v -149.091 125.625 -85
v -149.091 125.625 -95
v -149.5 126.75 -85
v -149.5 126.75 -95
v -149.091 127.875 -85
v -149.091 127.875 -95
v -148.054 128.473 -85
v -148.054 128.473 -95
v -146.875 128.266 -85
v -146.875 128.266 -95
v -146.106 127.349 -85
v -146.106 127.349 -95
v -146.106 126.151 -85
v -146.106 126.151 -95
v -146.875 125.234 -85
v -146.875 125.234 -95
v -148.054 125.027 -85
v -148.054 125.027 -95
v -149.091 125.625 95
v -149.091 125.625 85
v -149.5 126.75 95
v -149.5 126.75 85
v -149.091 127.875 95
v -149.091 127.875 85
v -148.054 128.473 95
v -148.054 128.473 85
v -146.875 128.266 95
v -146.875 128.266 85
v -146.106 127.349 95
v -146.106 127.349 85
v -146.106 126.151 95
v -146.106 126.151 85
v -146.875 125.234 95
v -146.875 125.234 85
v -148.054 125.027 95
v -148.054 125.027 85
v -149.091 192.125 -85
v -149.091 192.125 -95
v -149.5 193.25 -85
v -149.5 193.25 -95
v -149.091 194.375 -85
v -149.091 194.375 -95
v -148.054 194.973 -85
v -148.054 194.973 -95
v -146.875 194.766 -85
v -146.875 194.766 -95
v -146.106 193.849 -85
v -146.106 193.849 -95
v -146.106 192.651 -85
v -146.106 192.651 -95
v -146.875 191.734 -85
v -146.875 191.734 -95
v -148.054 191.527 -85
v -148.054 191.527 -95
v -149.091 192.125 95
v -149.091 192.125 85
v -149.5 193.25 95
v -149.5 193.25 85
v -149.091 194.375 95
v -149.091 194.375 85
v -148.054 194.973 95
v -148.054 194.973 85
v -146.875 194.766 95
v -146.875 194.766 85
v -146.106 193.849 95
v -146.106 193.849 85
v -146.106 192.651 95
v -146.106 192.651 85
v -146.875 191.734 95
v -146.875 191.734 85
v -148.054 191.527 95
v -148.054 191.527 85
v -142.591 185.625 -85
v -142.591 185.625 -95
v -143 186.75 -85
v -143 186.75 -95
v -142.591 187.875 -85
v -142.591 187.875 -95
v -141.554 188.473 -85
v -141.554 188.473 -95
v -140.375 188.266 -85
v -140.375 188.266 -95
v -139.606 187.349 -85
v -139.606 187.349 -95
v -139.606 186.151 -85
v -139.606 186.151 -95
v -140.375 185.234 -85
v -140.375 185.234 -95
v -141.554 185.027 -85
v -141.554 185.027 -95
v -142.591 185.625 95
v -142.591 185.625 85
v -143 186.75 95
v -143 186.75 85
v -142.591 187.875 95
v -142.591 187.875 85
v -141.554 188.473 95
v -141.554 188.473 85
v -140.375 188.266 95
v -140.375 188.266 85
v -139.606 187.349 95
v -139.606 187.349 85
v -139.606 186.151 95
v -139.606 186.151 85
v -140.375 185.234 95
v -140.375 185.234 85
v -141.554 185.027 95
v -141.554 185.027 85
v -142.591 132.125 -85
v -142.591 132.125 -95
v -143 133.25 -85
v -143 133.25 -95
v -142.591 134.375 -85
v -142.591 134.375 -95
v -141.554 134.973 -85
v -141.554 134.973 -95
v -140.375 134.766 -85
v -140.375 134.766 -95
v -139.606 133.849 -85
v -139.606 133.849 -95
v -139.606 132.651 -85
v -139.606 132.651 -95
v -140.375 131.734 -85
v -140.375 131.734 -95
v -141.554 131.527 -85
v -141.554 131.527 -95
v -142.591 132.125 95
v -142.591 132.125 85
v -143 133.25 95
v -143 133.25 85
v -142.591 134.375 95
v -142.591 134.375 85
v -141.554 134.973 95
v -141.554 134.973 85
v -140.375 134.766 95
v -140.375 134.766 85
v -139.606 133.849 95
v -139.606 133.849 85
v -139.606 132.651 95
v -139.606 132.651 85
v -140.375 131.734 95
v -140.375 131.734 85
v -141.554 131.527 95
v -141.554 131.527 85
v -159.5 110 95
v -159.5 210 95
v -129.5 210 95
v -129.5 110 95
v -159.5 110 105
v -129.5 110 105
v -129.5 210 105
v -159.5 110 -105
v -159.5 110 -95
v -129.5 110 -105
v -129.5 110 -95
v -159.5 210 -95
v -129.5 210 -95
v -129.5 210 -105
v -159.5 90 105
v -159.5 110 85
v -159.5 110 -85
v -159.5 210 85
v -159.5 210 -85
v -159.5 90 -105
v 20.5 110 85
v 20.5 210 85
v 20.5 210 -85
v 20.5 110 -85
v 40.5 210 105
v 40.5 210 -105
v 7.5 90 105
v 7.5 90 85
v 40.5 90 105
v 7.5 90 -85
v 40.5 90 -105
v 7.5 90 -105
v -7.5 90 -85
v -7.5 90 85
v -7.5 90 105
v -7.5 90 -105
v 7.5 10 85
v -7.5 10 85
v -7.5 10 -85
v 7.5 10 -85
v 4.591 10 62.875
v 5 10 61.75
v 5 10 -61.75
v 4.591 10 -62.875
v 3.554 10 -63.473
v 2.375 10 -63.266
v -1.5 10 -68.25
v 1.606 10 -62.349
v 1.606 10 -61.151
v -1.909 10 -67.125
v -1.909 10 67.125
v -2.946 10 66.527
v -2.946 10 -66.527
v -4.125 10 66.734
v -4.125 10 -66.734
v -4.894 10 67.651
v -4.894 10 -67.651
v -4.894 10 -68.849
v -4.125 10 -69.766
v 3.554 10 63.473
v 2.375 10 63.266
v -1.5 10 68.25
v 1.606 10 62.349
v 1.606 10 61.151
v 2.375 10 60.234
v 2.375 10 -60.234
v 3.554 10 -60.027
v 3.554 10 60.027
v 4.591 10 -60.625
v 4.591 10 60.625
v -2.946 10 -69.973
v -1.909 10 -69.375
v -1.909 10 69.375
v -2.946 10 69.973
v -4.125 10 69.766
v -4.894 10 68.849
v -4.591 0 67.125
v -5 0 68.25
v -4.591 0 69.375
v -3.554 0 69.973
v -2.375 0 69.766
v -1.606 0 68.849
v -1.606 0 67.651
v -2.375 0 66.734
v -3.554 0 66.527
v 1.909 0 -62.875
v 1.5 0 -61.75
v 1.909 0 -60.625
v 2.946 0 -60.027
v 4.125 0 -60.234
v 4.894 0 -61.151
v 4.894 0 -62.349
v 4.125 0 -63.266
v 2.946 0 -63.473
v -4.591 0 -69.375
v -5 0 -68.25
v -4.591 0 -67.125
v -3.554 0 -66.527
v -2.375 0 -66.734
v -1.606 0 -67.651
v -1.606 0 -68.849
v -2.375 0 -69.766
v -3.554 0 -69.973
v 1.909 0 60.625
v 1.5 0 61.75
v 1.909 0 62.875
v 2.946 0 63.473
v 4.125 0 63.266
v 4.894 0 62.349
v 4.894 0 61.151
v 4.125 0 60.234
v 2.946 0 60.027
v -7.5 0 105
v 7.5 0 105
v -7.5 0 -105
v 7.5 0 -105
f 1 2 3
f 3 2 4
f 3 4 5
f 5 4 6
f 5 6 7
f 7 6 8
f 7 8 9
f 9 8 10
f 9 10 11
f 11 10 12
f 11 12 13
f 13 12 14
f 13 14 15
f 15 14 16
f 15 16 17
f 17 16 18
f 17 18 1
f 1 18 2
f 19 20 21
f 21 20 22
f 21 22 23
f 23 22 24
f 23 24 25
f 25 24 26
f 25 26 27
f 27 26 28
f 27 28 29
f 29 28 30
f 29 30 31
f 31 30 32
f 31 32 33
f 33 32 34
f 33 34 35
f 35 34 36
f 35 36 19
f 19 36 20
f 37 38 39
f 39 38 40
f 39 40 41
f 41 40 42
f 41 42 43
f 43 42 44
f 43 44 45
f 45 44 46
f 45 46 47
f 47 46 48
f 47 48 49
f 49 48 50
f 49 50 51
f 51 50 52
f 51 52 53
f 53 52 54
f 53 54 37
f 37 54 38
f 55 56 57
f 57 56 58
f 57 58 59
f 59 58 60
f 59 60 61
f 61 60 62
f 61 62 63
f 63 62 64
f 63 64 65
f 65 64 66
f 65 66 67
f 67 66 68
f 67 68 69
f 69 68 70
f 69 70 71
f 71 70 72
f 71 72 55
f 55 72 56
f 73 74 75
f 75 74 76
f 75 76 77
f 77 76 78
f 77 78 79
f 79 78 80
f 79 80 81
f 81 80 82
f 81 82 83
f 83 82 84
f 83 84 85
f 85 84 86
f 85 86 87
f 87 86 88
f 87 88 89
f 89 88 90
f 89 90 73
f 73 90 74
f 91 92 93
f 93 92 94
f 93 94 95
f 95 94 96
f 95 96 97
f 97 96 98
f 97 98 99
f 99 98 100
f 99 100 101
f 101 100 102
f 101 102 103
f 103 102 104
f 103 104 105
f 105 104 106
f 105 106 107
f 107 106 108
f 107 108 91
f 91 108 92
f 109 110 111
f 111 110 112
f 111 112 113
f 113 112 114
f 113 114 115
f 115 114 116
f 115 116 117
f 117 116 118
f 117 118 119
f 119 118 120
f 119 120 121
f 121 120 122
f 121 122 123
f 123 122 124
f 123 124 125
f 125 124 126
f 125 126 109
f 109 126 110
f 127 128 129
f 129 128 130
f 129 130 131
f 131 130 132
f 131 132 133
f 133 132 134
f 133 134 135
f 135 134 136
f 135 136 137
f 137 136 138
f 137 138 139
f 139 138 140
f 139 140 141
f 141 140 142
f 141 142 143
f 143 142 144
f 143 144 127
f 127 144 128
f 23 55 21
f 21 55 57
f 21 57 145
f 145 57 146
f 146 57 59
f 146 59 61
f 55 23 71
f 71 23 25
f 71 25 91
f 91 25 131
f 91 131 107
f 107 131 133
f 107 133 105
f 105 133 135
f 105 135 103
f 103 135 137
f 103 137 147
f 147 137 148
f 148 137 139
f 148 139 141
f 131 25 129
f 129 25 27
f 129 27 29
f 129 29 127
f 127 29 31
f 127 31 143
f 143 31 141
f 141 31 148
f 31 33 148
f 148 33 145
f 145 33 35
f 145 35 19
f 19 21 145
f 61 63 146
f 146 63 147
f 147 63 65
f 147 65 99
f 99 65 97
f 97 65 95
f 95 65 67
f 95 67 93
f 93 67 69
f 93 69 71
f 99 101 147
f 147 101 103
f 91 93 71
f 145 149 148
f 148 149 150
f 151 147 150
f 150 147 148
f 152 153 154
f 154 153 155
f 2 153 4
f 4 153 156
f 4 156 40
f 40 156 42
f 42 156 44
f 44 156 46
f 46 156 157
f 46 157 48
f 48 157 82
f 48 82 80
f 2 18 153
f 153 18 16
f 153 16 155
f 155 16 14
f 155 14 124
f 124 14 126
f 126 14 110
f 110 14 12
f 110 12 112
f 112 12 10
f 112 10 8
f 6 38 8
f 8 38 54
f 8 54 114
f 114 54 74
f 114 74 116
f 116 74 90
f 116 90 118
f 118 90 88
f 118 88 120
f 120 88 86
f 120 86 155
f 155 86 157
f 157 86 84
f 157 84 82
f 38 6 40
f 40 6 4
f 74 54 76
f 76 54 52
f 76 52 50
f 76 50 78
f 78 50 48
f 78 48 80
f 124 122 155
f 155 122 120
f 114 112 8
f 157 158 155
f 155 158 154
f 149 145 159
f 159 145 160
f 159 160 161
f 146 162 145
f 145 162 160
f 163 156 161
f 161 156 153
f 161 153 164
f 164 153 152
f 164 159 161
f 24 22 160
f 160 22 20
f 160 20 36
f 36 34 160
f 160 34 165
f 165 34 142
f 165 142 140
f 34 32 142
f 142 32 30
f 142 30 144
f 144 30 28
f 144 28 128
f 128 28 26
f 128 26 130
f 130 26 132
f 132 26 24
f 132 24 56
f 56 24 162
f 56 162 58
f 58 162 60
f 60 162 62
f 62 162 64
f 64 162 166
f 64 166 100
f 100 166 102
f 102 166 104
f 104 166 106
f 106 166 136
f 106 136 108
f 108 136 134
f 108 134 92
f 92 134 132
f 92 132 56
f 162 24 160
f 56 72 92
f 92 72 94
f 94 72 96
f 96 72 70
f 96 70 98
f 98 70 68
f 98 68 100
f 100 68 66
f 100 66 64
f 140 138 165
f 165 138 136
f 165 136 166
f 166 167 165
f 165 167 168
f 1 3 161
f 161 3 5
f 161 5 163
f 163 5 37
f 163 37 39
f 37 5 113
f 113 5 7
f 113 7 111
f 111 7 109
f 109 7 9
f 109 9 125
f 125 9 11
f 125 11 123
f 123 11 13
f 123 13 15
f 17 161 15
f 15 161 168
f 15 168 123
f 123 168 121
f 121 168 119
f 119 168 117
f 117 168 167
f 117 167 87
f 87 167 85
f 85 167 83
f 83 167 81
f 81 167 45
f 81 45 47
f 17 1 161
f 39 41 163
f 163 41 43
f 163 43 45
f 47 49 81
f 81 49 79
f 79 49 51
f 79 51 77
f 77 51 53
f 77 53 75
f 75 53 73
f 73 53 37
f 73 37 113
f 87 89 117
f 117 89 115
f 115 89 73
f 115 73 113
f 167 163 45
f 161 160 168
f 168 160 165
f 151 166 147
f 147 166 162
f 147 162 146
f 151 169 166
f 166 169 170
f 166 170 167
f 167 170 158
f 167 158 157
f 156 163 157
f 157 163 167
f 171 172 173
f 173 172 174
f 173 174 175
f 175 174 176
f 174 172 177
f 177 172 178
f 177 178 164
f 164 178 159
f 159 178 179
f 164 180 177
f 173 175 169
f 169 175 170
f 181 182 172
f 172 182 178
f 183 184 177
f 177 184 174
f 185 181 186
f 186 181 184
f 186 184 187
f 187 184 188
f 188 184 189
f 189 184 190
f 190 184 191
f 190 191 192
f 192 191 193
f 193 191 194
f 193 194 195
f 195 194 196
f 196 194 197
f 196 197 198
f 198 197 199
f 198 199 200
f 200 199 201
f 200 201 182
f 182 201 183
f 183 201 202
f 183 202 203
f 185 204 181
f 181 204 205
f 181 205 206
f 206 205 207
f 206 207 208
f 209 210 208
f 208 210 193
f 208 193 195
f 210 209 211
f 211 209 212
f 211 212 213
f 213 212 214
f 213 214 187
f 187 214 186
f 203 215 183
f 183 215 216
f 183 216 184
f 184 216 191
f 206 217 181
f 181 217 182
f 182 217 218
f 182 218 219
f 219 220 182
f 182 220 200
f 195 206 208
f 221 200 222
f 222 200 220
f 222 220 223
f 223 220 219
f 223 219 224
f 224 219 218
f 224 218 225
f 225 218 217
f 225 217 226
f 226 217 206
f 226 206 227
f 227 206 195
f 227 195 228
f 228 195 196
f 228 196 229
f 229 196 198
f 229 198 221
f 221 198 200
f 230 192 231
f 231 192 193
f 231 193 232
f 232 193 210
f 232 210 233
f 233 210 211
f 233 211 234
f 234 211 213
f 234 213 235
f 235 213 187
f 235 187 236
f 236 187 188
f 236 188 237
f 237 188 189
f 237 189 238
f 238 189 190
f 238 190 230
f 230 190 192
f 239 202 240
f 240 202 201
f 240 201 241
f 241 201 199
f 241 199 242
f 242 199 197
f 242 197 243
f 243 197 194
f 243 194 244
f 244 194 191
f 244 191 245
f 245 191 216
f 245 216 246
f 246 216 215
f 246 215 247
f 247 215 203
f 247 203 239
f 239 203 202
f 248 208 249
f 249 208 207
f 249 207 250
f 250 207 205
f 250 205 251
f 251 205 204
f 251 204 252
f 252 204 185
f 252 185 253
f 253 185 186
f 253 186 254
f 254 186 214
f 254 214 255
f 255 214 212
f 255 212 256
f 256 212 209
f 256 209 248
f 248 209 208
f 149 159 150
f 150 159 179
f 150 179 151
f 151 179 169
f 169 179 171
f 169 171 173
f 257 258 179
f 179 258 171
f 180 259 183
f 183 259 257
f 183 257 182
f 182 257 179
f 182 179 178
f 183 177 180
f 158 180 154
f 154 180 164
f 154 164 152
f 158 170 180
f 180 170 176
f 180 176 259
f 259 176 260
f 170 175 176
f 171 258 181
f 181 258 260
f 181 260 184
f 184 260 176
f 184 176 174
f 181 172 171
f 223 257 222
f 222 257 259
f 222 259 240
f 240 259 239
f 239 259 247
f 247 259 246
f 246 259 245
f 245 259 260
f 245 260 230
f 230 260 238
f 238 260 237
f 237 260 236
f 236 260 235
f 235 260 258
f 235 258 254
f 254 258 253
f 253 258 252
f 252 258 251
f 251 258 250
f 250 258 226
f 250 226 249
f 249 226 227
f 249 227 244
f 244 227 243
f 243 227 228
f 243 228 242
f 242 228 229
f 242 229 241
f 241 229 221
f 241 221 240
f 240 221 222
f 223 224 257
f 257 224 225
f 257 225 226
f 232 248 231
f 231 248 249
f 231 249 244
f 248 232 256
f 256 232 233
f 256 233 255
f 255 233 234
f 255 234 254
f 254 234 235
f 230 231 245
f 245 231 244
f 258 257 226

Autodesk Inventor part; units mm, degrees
ref_plane "YZ Plane" through (0, 0, 0) normal (1, 0, 0) x (0, 1, 0)
ref_plane "XZ Plane" through (0, 0, 0) normal (0, 1, 0) x (-1, 0, 0)
ref_plane "XY Plane" through (0, 0, 0) normal (0, 0, 1) x (1, 0, 0)
sketch "Boceto2" plane through (0, 0, 0) normal (0, 1, 0) x (-1, 0, 0)
  line L0 (7.5, 105) -> (-7.5, 105)
  line L1 (-7.5, 105) -> (-7.5, -105)
  line L2 (-7.5, -105) -> (7.5, -105)
  line L3 (7.5, -105) -> (7.5, 105)
  line L4 (7.5, 105) -> (-7.5, -105) construction
  line L5 (-7.5, 105) -> (7.5, -105) construction
  point P0 (0, 0)
  dimension "d7" = 15
  dimension "d8" = 210
extrude "Extrusión1" add sketch "Boceto2" along normal blind 10
sketch "Boceto3" plane through (0, 10, 0) normal (0, 1, 0) x (1, 0, 0)
  line L0 (5, 60) -> (-5, 60)
  line L1 (-5, 60) -> (-5, 70)
  line L2 (-5, 70) -> (5, 70)
  line L3 (5, 70) -> (5, 60)
  line L4 (5, 60) -> (-5, 70) construction
  line L5 (7.5, 105) -> (-7.5, 105) projected
  line L6 (0, 64.5148) -> (0, 61.9205)
  circle A0 centre (3.25, 61.75) radius 1.75
  circle A1 centre (-3.25, 68.25) radius 1.75
  line L7 (-7.5, 105) -> (-7.5, -105) projected
  line L8 (-7.5, 0) -> (0, 0)
  line L9 (5, -70) -> (5, -60)
  line L10 (-5, -70) -> (5, -70)
  line L11 (5, -60) -> (-5, -60)
  line L12 (-5, -60) -> (-5, -70)
  line L13 (5, -60) -> (-5, -70) construction
  line L14 (0, -64.5148) -> (0, -61.9205)
  circle A2 centre (-3.25, -68.25) radius 1.75
  circle A3 centre (3.25, -61.75) radius 1.75
  point P0 (3.25, 68.25)
  point P1 (-5, 65)
  point P2 (-3.25, 61.75)
  point P3 (0, 105)
  point P4 (3.25, -68.25)
  point P5 (-3.25, -61.75)
  point P6 (-5, -65)
  dimension "d12" = 1.75
  dimension "d13" = 1.75
  dimension "d14" = 1.75
  dimension "d15" = 1.75
  dimension "d16" = 10
  dimension "d17" = 10
  dimension "d19" = 35
  dimension "d67" = 36.75
hole "Agujero1" at (3.25, 10, -61.75) at (-3.25, 10, -68.25) at (-3.25, 10, 68.25) at (3.25, 10, 61.75) direction (0, -1, 0) diameter 3.5 end through all
sketch "Boceto4" plane through (0, 10, 0) normal (0, 1, 0) x (1, 0, 0)
  line L0 (-7.5, 105) -> (-7.5, -105) projected
  line L1 (-7.5, -105) -> (7.5, -105)
  line L2 (7.5, -105) -> (7.5, -85)
  line L3 (7.5, -85) -> (-7.5, -85)
  line L4 (-7.5, -85) -> (-7.5, -105)
  line L5 (-7.5, 0) -> (1.0116, 0)
  line L6 (-7.5, -105) -> (-7.5, 105)
  line L7 (-7.5, 105) -> (7.5, 105)
  line L8 (7.5, 105) -> (7.5, 85)
  line L9 (7.5, 85) -> (-7.5, 85)
  line L10 (-7.5, 85) -> (-7.5, 105)
  point P0 (0, 0)
  dimension "d27" = 15
  dimension "d28" = 20
extrude "Extrusión2" add sketch "Boceto4" along normal blind 80
sketch "Boceto5" plane through (0, 90, 0) normal (0, 1, 0) x (1, 0, 0)
  line L0 (-7.5, -105) -> (7.5, -105) projected
  line L1 (-7.5, -105) -> (40.5, -105)
  line L2 (40.5, -105) -> (40.5, 105)
  line L3 (40.5, 105) -> (-7.5, 105)
  line L4 (-7.5, 105) -> (-7.5, -105)
  line L5 (40.5, -105) -> (-159.5, -105)
  line L6 (-159.5, -105) -> (-159.5, 105)
  line L7 (-159.5, 105) -> (40.5, 105)
  line L8 (40.5, 105) -> (40.5, -105)
  point P0 (0, 0)
  dimension "d31" = 48
  dimension "d32" = 200
extrude "Extrusión3" add sketch "Boceto5" along normal blind 120
sketch "Boceto6" plane through (0, 210, 0) normal (0, 1, 0) x (1, 0, 0)
  line L0 (40.5, 105) -> (7.5, 105) projected
  line L1 (40.5, 105) -> (20.5, 105)
  line L2 (20.5, 105) -> (20.5, 85)
  line L3 (7.5, -105) -> (40.5, -105) projected
  line L4 (24, -105) -> (24, -85)
  line L5 (-159.5, 105) -> (-159.5, -105) projected
  line L6 (20.5, 85) -> (-159.5, 85)
  line L7 (-159.5, 85) -> (-159.5, -85)
  line L8 (-159.5, -85) -> (20.5, -85)
  line L9 (20.5, -85) -> (20.5, 85)
  point P0 (7.5, 85)
  dimension "d36" = 20
  dimension "d37" = 20
  dimension "d38" = 20
extrude "Extrusión4" cut sketch "Boceto6" against normal blind 100
sketch "Boceto7" plane through (-159.5, 90, -105) normal (-1, 0, 0) x (0, 0, 1)
  line L0 (0, 120) -> (20, 120) projected
  line L1 (20, 120) -> (10, 120)
  line L2 (10, 120) -> (10, 20)
  line L3 (10, 20) -> (20, 20)
  line L4 (20, 20) -> (20, 120)
  line L5 (190, 120) -> (190, 20) projected
  line L6 (190, 120) -> (200, 120)
  line L7 (200, 120) -> (200, 20)
  line L8 (200, 20) -> (190, 20)
  line L9 (190, 20) -> (190, 120)
  line L10 (210, 0) -> (210, 120) projected
  line L11 (0, 0) -> (0, 120) projected
  line L12 (0, 120) -> (10, 120)
  line L13 (10, 120) -> (10, 20)
  line L14 (10, 20) -> (0, 20)
  line L15 (0, 20) -> (0, 120)
  line L16 (210, 120) -> (0, 120) projected
  line L17 (210, 120) -> (200, 120)
  line L18 (200, 120) -> (200, 20)
  line L19 (200, 20) -> (210, 20)
  line L20 (210, 20) -> (210, 120)
  point P0 (105, -90)
  dimension "d42" = 10
  dimension "d63" = 10
  dimension "d65" = 10
extrude "Extrusión5" cut sketch "Boceto7" against normal blind 30 contours L0 L2 L14 L11 | L16 L10 L19 L7
sketch "Boceto8" plane through (-7.5, 0, 105) normal (0, 0, 1) x (1, 0, 0)
  line L0 (-122, 210) -> (-122, 110) projected
  line L1 (-132, 185) -> (-142, 185)
  line L2 (-142, 185) -> (-142, 195)
  line L3 (-142, 195) -> (-132, 195)
  line L4 (-132, 195) -> (-132, 185)
  line L5 (-132, 185) -> (-142, 195) construction
  line L6 (-142, 185) -> (-132, 195) construction
  line L7 (-152, 210) -> (48, 210) projected
  line L8 (-113, 160) -> (-128, 160)
  line L9 (-152, 110) -> (-122, 110) projected
  line L10 (-132, 190) -> (-131.5898, 190)
  circle A0 centre (-140.25, 193.25) radius 1.75
  circle A1 centre (-133.75, 186.75) radius 1.75
  line L11 (-132, 125) -> (-132, 135)
  line L12 (-142, 125) -> (-132, 125)
  line L13 (-132, 135) -> (-142, 125) construction
  line L14 (-132, 135) -> (-142, 135)
  line L15 (-142, 135) -> (-132, 125) construction
  line L16 (-142, 135) -> (-142, 125)
  line L17 (-132, 130) -> (-131.5898, 130)
  circle A2 centre (-133.75, 133.25) radius 1.75
  circle A3 centre (-140.25, 126.75) radius 1.75
  line L18 (-152, 110) -> (-152, 210) projected
  point P0 (7.5, 0)
  point P1 (-113, 215)
  point P2 (-133.75, 193.25)
  point P3 (-142, 190)
  point P4 (-140.25, 186.75)
  point P5 (48, 210)
  point P6 (-133.75, 126.75)
  point P7 (-140.25, 133.25)
  point P8 (-143, 115)
  point P9 (-133.75, 126.75)
  point P10 (-140.25, 133.25)
  point P11 (-142, 130)
  dimension "d46" = 1.75
  dimension "d47" = 1.75
  dimension "d48" = 1.75
  dimension "d49" = 1.75
  dimension "d50" = 10
  dimension "d51" = 10
  dimension "d52" = 15
  dimension "d66" = 10
  dimension "d70" = 15
hole "Agujero2" at (-147.75, 193.25, 105) at (-141.25, 186.75, 105) at (-147.75, 126.75, 105) at (-141.25, 133.25, 105) direction (0, 0, -1) diameter 3.5 end through all
properties part number "container_back"
